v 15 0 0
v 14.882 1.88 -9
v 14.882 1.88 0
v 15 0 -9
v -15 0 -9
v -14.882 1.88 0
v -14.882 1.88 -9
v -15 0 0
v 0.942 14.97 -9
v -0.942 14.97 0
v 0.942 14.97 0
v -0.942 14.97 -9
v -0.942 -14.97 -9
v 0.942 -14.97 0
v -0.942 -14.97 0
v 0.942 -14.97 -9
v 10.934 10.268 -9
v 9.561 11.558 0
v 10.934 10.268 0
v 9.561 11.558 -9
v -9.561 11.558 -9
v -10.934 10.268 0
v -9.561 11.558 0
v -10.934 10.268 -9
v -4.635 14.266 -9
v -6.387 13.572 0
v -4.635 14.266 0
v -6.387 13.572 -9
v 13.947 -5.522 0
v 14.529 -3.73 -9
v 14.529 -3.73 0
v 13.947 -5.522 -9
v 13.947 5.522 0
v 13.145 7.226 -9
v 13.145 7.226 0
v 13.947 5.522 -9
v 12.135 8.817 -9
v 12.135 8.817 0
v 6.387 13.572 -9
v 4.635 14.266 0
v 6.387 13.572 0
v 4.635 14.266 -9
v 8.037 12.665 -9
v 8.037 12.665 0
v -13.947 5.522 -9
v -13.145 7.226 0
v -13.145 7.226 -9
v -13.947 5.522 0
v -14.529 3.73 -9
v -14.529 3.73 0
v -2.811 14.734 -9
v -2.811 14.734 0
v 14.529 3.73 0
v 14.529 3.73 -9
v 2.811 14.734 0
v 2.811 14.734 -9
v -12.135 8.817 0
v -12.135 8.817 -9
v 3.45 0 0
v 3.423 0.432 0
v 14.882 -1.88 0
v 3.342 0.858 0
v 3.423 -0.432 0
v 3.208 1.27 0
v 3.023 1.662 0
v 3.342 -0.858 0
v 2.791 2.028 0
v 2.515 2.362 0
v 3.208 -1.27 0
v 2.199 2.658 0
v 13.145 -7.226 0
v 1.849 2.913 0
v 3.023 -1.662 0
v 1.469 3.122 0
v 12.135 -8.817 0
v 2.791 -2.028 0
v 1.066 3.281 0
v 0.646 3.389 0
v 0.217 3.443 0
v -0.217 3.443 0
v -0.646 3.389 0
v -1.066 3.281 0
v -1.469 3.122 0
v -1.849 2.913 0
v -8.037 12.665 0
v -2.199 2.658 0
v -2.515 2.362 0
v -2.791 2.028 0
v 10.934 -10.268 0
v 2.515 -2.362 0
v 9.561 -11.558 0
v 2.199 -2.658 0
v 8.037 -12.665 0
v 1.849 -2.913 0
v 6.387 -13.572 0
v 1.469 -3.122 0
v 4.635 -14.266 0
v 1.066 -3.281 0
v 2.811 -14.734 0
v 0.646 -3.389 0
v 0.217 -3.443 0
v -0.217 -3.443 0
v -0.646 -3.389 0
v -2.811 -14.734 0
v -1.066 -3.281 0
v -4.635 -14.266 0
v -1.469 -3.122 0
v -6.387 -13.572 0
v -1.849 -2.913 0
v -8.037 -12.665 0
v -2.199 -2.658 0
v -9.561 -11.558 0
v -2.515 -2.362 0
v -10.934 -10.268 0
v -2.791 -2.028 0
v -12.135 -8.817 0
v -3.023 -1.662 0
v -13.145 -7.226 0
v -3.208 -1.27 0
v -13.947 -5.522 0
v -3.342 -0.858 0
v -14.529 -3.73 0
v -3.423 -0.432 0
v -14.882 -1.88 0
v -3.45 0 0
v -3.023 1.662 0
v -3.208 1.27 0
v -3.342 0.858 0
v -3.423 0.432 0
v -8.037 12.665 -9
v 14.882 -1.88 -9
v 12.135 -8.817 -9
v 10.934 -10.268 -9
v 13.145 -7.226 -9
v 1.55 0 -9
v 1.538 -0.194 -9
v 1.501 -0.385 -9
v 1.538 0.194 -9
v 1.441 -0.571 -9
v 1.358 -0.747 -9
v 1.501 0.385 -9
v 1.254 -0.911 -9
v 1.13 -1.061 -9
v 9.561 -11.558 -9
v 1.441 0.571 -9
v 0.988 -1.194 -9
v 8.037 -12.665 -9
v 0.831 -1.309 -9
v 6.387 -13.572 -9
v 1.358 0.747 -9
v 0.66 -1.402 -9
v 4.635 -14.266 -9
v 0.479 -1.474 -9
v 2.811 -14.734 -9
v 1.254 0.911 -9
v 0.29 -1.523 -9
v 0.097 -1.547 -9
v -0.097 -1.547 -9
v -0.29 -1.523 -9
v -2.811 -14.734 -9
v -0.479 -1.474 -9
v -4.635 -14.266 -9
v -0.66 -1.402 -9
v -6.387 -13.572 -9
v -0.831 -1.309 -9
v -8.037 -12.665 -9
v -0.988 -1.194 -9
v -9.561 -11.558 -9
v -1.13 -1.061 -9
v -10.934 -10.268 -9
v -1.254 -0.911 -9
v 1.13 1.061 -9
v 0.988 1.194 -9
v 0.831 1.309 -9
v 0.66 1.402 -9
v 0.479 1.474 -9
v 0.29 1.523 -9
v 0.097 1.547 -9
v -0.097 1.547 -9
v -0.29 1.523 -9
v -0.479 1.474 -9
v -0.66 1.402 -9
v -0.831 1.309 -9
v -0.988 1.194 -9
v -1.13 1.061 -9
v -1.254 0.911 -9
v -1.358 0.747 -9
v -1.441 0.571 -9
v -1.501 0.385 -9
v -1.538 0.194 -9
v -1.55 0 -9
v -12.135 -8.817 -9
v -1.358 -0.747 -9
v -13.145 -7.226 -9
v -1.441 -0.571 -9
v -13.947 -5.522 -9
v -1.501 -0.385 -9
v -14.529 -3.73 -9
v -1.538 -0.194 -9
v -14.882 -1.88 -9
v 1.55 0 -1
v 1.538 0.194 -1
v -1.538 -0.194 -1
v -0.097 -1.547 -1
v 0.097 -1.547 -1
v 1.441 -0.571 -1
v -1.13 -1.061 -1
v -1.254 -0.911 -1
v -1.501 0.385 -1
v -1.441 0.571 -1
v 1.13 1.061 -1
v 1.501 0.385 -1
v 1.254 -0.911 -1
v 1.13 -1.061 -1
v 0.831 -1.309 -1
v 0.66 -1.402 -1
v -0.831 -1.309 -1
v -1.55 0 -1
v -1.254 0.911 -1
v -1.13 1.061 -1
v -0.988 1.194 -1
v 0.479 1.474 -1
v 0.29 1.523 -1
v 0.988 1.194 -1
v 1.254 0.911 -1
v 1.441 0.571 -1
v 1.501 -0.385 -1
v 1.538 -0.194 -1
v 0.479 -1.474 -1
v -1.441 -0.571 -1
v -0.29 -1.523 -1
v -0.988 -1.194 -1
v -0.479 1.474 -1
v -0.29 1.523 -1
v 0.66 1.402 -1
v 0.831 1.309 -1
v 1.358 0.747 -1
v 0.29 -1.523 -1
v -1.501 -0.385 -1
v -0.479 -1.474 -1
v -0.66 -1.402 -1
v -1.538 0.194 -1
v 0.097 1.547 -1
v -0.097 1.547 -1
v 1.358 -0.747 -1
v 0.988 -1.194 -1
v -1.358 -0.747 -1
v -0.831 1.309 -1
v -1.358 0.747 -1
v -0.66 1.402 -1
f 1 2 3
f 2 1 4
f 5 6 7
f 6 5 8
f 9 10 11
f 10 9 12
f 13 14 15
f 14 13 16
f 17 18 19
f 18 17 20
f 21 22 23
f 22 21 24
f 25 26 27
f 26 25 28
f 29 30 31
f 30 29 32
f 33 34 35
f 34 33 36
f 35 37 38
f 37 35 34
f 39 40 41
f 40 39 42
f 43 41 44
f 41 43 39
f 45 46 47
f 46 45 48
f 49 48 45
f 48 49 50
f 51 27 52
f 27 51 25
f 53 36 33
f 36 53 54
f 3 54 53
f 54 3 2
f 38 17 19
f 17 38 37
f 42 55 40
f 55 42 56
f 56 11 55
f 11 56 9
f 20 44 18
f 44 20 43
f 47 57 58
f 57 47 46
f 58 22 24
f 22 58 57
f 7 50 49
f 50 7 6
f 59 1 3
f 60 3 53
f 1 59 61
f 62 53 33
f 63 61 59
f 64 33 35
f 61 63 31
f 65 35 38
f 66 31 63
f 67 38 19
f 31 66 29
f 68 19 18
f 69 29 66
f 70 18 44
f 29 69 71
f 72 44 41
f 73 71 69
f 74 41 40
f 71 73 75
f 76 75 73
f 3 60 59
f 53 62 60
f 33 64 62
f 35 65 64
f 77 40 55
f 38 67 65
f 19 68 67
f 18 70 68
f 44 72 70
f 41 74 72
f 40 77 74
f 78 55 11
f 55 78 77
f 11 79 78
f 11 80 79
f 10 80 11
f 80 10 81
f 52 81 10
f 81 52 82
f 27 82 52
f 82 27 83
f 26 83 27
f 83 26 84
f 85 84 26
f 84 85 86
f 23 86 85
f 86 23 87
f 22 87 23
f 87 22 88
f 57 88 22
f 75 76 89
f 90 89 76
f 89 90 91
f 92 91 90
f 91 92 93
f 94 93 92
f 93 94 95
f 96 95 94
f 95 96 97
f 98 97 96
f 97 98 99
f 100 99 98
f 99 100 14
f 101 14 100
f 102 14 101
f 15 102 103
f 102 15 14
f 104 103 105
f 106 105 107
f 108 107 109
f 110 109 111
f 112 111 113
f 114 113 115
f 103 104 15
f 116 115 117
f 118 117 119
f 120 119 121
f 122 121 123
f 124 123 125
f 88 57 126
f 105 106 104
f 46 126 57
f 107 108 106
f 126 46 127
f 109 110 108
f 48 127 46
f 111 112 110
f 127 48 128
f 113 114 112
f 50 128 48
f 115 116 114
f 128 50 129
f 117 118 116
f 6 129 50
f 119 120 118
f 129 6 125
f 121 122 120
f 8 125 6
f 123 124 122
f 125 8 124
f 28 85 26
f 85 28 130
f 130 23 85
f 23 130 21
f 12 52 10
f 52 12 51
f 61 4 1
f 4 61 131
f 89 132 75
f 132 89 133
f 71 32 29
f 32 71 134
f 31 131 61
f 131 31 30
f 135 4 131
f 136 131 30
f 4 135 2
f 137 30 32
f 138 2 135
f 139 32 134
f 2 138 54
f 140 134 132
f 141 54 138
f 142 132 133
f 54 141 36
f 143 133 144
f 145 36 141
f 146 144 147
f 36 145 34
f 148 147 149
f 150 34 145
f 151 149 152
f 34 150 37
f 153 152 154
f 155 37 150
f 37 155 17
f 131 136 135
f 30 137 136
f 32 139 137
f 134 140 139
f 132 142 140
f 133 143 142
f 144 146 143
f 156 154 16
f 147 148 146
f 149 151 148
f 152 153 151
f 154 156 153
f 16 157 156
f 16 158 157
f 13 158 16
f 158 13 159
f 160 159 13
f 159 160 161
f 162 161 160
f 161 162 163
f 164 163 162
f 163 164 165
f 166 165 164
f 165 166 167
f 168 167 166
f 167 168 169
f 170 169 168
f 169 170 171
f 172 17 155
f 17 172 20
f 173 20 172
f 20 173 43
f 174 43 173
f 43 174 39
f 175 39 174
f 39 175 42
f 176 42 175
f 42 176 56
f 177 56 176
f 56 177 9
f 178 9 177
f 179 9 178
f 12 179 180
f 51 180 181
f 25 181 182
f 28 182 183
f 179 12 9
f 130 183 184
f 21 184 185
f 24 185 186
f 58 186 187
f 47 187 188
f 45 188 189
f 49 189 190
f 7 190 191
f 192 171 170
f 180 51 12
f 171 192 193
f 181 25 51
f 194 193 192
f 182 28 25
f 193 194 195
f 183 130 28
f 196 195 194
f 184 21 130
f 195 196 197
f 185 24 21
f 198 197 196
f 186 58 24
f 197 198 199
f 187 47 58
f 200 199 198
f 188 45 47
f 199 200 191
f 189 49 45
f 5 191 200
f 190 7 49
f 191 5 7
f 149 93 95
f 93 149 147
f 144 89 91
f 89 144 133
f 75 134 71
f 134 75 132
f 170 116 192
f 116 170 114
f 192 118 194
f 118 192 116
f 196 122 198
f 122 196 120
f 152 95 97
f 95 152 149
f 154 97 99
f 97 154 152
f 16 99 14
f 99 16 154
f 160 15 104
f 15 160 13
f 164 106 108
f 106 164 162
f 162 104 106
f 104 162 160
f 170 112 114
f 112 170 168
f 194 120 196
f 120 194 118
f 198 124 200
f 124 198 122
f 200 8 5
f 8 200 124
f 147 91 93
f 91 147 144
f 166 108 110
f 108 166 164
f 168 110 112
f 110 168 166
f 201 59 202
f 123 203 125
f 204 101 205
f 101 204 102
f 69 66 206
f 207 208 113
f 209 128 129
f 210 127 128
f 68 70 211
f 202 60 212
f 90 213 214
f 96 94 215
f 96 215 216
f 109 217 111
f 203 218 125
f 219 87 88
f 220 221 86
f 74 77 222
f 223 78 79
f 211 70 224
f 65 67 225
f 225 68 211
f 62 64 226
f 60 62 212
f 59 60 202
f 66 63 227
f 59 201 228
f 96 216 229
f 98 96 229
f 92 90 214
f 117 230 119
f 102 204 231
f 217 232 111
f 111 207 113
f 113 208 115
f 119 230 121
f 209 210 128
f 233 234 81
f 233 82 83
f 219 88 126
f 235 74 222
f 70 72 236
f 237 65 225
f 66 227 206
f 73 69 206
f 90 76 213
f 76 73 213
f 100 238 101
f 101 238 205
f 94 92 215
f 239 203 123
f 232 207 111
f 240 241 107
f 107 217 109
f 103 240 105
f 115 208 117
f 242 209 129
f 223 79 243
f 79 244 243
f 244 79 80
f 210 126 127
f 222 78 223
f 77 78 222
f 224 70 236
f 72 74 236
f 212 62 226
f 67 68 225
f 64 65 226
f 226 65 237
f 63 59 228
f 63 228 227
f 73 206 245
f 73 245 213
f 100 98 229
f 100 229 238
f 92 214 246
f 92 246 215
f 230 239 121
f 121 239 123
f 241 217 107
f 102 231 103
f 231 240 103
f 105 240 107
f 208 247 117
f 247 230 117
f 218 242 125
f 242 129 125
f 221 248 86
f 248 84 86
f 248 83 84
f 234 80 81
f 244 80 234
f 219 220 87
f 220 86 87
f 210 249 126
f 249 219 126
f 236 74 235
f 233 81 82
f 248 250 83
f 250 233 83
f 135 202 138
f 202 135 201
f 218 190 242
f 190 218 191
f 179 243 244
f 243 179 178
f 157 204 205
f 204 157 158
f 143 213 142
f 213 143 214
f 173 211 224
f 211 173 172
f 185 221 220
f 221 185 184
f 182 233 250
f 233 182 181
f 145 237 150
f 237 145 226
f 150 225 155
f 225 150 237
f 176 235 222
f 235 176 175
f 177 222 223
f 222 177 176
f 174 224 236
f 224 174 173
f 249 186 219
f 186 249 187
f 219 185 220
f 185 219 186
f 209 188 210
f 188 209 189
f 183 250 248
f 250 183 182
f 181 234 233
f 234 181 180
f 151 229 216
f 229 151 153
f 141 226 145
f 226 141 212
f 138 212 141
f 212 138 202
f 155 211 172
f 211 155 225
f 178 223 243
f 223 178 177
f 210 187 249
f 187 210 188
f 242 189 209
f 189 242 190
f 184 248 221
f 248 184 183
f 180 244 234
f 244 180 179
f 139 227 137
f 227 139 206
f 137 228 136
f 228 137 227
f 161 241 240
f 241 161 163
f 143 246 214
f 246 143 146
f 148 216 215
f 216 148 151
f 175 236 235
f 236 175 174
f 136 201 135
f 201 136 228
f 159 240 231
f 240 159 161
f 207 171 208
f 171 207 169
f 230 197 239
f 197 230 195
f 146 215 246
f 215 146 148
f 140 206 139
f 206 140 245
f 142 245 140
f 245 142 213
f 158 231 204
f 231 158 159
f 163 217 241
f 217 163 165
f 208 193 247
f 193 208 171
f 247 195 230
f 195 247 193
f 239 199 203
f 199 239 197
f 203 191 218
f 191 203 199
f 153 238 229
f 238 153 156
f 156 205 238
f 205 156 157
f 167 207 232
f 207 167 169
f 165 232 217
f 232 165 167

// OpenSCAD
$fn = 50;


difference() {
	union() {
		translate(v = [0, 0, -9.0000000000]) {
			cylinder(h = 9, r = 15.0000000000);
		}
		translate(v = [0, 0, -9.0000000000]) {
			cylinder(h = 9, r = 2.8750000000);
		}
	}
	union() {
		translate(v = [0, 0, 0]) {
			rotate(a = [0, 0, 0]) {
				difference() {
					union() {
						translate(v = [0, 0, -9.0000000000]) {
							cylinder(h = 9, r = 1.2500000000);
						}
						translate(v = [0, 0, -1.0000000000]) {
							cylinder(h = 1.0000000000, r1 = 1.5500000000, r2 = 3.4500000000);
						}
						translate(v = [0, 0, -9.0000000000]) {
							cylinder(h = 9, r = 1.5500000000);
						}
						translate(v = [0, 0, -9.0000000000]) {
							cylinder(h = 9, r = 1.2500000000);
						}
					}
					union();
				}
			}
		}
	}
}
